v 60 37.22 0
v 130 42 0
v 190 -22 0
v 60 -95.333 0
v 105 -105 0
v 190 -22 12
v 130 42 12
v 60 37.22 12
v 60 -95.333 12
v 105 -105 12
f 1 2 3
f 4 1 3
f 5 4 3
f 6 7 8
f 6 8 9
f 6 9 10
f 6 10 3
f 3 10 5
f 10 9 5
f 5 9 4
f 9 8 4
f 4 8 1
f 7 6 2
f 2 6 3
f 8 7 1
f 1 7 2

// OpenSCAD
polyhedron(points=[[190.0, -22.0, 0.0], [105.0, -105.0, 0.0], [60.0, -95.333333, 0.0], [60.0, 37.219512, 0.0], [130.0, 42.0, 0.0], [190.0, -22.0, 12.0], [105.0, -105.0, 12.0], [60.0, -95.333333, 12.0], [60.0, 37.219512, 12.0], [130.0, 42.0, 12.0]], faces=[[3, 4, 0], [2, 3, 0], [1, 2, 0], [5, 9, 8], [5, 8, 7], [5, 7, 6], [5, 6, 0], [0, 6, 1], [6, 7, 1], [1, 7, 2], [7, 8, 2], [2, 8, 3], [9, 5, 4], [4, 5, 0], [8, 9, 3], [3, 9, 4]], convexity=30);
